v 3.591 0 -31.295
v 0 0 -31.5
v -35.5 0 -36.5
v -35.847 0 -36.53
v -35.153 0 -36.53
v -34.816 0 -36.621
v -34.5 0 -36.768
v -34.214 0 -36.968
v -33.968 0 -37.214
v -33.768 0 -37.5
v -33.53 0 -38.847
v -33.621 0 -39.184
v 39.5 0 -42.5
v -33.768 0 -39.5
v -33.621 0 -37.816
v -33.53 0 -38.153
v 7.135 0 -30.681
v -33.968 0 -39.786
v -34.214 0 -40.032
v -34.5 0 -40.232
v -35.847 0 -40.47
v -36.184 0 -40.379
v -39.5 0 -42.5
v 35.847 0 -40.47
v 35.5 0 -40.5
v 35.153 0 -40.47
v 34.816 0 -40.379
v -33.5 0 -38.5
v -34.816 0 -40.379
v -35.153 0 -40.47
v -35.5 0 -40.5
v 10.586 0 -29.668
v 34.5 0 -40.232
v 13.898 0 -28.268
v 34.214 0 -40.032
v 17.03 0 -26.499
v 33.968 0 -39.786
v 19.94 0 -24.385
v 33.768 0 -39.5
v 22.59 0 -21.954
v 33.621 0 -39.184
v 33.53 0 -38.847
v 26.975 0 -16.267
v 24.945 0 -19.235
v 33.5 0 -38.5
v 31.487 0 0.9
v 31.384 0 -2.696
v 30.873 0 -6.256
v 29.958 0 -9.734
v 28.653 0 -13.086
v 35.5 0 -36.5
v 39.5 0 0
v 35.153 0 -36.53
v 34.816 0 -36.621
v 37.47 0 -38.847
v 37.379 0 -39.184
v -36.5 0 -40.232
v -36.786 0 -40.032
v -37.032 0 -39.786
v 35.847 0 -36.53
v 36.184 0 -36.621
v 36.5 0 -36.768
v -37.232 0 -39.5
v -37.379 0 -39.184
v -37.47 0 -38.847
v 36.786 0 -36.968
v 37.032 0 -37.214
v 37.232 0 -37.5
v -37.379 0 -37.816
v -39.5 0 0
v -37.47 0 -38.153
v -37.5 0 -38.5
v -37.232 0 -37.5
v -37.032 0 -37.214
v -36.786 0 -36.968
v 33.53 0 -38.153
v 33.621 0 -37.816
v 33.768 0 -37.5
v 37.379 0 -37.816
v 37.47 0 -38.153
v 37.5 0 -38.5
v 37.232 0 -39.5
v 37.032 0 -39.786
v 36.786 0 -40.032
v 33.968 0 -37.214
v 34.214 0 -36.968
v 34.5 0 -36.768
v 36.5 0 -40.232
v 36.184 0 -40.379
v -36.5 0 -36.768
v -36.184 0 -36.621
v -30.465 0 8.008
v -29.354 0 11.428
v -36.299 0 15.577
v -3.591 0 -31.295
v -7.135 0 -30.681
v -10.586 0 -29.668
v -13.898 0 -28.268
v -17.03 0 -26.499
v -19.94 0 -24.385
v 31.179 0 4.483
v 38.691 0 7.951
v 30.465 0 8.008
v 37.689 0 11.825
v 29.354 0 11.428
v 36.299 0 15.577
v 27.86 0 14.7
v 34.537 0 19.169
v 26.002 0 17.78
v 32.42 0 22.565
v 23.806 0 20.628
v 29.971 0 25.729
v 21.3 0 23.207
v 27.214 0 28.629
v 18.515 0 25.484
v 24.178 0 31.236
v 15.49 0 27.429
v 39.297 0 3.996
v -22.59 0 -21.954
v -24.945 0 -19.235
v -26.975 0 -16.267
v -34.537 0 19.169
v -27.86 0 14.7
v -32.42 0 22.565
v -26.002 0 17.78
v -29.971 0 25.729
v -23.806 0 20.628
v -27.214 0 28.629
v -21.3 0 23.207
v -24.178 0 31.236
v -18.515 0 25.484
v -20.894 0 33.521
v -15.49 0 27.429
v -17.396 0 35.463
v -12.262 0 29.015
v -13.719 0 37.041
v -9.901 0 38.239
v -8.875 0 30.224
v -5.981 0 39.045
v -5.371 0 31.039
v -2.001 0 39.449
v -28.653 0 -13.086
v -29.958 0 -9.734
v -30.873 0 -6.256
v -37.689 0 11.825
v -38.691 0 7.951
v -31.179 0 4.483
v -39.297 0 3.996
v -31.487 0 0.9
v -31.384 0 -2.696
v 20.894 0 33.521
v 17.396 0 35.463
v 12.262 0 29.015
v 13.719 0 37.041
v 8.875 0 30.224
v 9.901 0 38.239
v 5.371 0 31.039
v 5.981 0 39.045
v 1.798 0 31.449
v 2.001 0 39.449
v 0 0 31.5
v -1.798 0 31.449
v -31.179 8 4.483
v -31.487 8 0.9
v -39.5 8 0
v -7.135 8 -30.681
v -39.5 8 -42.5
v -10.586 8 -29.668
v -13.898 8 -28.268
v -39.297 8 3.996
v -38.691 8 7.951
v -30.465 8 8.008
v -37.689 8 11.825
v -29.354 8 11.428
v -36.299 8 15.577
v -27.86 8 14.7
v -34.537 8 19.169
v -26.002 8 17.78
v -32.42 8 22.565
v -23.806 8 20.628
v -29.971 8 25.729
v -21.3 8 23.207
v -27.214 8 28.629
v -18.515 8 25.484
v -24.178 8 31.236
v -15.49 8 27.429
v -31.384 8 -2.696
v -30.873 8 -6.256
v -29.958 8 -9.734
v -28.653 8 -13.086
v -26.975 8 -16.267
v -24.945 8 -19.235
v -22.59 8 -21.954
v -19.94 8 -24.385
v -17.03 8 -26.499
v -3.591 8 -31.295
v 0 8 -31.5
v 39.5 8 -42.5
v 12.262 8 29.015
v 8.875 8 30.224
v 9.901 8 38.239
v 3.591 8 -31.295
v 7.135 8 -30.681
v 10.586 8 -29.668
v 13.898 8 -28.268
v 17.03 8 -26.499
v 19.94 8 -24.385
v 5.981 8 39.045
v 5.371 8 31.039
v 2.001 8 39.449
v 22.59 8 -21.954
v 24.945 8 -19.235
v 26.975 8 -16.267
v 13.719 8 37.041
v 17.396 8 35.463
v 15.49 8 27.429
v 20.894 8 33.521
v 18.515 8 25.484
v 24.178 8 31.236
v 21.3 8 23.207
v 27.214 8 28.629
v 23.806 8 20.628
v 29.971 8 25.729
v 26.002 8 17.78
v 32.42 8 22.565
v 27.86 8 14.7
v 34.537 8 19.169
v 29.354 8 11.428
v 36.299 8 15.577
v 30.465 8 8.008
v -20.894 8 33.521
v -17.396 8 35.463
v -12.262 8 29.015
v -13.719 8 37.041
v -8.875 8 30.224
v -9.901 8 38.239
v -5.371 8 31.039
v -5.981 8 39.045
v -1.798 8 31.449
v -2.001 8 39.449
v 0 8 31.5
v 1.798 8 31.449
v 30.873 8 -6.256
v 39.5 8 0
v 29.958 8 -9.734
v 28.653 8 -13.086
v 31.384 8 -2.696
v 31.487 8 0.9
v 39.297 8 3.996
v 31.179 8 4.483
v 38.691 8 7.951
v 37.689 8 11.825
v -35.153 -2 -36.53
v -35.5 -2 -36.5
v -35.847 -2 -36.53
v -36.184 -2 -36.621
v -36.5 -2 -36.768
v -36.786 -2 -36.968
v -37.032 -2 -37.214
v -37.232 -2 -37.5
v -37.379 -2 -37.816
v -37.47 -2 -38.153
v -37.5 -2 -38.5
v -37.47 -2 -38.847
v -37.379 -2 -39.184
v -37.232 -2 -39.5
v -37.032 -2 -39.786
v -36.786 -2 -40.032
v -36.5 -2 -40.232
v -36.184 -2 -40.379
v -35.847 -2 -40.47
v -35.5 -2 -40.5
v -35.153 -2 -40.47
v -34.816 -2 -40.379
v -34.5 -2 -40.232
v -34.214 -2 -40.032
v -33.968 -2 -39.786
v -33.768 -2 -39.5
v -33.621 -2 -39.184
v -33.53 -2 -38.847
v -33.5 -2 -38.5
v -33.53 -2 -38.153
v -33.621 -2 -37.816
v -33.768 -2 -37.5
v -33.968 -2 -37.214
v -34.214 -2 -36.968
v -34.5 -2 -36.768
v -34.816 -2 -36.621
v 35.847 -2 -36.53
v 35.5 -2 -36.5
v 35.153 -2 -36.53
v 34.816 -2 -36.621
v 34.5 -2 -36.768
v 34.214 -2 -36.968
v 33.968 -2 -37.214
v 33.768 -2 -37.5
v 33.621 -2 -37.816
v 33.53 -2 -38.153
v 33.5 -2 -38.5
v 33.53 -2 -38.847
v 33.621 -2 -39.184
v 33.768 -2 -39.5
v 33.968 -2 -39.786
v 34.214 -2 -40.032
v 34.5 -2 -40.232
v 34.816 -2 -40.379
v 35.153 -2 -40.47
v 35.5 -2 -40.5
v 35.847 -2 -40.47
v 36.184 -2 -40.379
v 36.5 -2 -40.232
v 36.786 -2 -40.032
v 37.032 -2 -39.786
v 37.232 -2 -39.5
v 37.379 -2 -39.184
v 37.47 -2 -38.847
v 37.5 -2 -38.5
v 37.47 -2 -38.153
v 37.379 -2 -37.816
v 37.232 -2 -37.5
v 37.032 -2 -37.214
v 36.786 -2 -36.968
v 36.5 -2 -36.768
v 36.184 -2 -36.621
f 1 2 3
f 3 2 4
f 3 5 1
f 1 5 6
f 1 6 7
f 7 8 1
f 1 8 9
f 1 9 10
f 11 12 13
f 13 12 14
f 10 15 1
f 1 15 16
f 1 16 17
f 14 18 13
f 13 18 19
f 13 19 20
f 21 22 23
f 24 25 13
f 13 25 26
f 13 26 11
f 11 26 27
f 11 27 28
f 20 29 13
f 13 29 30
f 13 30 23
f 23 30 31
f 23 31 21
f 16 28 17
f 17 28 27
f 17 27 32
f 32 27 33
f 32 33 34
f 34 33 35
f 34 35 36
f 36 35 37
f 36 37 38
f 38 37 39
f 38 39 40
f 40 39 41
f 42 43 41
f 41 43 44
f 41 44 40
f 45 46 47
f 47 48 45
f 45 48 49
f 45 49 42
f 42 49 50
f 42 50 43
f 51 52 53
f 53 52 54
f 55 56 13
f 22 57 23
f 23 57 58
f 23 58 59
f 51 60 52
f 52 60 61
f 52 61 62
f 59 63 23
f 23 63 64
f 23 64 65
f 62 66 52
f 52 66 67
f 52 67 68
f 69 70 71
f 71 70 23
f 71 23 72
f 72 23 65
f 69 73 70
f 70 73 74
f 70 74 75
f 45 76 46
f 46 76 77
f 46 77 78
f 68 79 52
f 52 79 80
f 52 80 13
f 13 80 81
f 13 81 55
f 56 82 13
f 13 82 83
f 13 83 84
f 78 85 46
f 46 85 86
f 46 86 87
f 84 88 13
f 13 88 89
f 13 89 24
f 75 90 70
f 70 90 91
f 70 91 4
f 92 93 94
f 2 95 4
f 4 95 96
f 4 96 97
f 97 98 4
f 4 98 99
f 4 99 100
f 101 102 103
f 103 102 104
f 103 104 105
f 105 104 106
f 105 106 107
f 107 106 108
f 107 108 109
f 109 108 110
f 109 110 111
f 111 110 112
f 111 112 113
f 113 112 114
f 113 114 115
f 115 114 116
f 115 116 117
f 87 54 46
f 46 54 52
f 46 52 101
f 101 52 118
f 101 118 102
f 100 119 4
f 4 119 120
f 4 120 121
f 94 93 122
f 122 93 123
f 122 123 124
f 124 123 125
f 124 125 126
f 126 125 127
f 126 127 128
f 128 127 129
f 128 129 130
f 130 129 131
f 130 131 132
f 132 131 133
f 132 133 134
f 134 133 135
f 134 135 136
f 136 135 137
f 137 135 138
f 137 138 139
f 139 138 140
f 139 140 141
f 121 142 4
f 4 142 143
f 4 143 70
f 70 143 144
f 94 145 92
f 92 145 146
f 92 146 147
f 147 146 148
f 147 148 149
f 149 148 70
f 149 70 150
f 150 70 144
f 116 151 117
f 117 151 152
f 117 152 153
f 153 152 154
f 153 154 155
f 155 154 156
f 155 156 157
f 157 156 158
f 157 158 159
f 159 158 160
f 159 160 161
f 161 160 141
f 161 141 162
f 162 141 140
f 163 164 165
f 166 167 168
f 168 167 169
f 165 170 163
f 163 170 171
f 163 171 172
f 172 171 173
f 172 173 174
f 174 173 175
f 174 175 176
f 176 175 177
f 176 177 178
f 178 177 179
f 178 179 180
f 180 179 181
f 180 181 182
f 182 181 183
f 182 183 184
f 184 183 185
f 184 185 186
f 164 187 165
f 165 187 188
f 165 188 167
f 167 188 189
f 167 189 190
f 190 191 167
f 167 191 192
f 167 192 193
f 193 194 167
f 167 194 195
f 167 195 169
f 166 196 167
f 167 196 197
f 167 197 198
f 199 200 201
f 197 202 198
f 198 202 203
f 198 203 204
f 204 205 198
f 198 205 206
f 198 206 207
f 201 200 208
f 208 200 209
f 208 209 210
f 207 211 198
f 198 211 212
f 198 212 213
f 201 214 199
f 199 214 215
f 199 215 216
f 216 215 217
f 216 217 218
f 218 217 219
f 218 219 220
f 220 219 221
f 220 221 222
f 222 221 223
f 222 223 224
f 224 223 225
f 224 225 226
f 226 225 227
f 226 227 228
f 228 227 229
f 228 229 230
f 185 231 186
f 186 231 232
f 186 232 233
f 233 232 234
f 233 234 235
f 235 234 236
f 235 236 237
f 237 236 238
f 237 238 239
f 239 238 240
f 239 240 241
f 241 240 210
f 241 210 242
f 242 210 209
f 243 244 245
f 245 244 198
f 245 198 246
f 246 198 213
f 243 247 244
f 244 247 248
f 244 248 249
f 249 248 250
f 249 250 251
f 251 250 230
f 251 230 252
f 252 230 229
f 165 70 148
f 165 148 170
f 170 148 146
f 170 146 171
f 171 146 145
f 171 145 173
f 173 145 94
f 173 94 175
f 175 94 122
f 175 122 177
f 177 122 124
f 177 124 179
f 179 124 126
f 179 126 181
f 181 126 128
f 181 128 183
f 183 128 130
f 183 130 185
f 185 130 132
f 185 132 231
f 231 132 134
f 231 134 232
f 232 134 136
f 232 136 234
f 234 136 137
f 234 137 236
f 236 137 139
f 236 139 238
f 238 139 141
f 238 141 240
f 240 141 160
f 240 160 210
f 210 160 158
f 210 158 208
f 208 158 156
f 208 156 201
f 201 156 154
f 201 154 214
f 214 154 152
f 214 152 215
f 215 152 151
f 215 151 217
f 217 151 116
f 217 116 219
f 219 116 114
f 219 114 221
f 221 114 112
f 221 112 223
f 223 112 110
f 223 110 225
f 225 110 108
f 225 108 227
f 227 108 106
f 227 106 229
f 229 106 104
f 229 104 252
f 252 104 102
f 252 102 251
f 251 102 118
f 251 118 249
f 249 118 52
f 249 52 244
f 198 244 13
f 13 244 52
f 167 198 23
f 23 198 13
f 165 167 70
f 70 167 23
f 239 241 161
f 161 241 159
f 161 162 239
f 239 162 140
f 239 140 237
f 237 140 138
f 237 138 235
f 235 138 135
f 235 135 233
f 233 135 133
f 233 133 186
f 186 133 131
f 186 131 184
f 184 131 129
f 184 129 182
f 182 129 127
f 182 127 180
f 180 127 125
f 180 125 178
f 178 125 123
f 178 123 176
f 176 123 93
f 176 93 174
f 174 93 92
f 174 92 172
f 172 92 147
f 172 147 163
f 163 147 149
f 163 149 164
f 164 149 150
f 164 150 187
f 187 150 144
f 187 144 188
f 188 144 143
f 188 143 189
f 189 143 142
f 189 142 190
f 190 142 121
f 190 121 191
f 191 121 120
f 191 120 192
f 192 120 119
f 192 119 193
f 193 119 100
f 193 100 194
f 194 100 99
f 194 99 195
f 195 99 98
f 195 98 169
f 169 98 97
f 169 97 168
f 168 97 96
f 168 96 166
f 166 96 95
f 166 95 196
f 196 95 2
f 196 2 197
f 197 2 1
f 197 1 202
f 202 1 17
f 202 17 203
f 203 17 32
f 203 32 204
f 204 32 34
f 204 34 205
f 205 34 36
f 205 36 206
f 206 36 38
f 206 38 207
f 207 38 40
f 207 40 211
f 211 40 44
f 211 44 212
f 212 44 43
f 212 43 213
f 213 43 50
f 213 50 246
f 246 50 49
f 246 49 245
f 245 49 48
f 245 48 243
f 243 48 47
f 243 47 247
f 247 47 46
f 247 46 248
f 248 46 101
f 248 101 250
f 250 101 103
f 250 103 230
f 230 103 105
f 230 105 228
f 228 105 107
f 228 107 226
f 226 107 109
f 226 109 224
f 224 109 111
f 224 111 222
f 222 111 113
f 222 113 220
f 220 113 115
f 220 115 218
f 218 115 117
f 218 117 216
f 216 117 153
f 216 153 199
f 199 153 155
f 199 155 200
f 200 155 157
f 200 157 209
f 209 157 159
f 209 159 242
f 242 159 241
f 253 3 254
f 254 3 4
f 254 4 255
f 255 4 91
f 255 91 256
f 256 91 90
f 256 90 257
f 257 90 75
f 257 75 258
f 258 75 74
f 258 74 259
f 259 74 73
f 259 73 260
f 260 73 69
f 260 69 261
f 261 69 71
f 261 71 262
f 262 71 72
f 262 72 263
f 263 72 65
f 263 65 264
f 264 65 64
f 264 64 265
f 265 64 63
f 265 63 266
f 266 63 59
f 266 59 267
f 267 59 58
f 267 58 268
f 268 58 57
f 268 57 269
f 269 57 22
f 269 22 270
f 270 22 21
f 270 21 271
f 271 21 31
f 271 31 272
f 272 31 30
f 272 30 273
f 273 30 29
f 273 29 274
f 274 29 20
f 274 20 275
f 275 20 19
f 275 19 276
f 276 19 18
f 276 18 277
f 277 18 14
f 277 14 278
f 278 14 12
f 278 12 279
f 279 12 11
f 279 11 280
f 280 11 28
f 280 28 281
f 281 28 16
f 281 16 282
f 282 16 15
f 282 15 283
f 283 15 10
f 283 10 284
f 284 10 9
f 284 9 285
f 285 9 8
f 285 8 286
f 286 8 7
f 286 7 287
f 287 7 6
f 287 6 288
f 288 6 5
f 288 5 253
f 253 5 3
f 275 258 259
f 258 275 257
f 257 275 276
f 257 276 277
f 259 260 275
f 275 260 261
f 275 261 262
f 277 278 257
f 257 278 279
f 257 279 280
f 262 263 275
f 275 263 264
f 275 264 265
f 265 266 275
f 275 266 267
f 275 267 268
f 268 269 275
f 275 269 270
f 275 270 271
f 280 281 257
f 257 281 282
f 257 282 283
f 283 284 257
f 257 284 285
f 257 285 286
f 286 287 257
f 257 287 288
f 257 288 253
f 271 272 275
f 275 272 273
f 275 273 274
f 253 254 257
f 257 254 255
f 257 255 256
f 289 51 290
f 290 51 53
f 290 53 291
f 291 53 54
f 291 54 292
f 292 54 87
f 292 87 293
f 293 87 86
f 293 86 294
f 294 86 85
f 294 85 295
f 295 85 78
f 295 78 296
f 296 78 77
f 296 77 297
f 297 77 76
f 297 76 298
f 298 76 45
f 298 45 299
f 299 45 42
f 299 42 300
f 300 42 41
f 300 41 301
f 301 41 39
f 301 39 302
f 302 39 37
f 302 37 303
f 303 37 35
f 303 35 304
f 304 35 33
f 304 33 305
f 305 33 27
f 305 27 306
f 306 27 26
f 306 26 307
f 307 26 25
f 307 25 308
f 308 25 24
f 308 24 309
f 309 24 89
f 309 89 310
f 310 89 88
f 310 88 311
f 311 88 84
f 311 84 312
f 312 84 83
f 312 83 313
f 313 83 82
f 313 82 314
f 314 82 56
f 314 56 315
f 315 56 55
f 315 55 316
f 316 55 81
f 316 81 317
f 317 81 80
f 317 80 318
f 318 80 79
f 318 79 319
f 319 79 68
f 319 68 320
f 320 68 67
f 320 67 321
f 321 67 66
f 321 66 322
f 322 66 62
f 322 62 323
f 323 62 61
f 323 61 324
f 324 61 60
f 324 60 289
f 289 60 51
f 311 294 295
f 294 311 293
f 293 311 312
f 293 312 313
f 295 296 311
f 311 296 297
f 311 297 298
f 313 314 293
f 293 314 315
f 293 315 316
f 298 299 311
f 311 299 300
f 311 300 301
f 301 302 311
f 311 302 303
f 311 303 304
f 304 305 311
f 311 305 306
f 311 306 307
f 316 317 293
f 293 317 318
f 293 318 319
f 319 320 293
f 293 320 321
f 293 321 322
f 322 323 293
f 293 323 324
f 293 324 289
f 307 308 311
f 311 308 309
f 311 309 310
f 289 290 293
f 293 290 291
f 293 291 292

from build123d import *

# Parameters (mm, degrees)
SKETCH18_R           = 31.5
BOSS_EXTRUDE13_DEPTH = 8
SKETCH19_R           = 2
BOSS_EXTRUDE14_DEPTH = 2


with BuildPart() as part:
    # Sketch18 → Boss-Extrude13 (new body)
    with BuildSketch(Plane(origin=(0, 0, 0), x_dir=(1, 0, 0), z_dir=(0, 1, 0))):
        with BuildLine():
            Line((-39.5, 0), (-39.5, 42.5))
            Line((-39.5, 42.5), (39.5, 42.5))
            Line((39.5, 42.5), (39.5, 0))
            ThreePointArc((39.5, 0), (0, -39.5), (-39.5, 0))
        make_face()
        Circle(SKETCH18_R, mode=Mode.SUBTRACT)
    extrude(amount=BOSS_EXTRUDE13_DEPTH)

    # Sketch19 → Boss-Extrude14 (add)
    with BuildSketch(Plane.XZ):
        with Locations((-35.5, -38.5)):
            Circle(SKETCH19_R)
        with Locations((35.5, -38.5)):
            Circle(SKETCH19_R)
    extrude(amount=BOSS_EXTRUDE14_DEPTH)


solid = part.part
